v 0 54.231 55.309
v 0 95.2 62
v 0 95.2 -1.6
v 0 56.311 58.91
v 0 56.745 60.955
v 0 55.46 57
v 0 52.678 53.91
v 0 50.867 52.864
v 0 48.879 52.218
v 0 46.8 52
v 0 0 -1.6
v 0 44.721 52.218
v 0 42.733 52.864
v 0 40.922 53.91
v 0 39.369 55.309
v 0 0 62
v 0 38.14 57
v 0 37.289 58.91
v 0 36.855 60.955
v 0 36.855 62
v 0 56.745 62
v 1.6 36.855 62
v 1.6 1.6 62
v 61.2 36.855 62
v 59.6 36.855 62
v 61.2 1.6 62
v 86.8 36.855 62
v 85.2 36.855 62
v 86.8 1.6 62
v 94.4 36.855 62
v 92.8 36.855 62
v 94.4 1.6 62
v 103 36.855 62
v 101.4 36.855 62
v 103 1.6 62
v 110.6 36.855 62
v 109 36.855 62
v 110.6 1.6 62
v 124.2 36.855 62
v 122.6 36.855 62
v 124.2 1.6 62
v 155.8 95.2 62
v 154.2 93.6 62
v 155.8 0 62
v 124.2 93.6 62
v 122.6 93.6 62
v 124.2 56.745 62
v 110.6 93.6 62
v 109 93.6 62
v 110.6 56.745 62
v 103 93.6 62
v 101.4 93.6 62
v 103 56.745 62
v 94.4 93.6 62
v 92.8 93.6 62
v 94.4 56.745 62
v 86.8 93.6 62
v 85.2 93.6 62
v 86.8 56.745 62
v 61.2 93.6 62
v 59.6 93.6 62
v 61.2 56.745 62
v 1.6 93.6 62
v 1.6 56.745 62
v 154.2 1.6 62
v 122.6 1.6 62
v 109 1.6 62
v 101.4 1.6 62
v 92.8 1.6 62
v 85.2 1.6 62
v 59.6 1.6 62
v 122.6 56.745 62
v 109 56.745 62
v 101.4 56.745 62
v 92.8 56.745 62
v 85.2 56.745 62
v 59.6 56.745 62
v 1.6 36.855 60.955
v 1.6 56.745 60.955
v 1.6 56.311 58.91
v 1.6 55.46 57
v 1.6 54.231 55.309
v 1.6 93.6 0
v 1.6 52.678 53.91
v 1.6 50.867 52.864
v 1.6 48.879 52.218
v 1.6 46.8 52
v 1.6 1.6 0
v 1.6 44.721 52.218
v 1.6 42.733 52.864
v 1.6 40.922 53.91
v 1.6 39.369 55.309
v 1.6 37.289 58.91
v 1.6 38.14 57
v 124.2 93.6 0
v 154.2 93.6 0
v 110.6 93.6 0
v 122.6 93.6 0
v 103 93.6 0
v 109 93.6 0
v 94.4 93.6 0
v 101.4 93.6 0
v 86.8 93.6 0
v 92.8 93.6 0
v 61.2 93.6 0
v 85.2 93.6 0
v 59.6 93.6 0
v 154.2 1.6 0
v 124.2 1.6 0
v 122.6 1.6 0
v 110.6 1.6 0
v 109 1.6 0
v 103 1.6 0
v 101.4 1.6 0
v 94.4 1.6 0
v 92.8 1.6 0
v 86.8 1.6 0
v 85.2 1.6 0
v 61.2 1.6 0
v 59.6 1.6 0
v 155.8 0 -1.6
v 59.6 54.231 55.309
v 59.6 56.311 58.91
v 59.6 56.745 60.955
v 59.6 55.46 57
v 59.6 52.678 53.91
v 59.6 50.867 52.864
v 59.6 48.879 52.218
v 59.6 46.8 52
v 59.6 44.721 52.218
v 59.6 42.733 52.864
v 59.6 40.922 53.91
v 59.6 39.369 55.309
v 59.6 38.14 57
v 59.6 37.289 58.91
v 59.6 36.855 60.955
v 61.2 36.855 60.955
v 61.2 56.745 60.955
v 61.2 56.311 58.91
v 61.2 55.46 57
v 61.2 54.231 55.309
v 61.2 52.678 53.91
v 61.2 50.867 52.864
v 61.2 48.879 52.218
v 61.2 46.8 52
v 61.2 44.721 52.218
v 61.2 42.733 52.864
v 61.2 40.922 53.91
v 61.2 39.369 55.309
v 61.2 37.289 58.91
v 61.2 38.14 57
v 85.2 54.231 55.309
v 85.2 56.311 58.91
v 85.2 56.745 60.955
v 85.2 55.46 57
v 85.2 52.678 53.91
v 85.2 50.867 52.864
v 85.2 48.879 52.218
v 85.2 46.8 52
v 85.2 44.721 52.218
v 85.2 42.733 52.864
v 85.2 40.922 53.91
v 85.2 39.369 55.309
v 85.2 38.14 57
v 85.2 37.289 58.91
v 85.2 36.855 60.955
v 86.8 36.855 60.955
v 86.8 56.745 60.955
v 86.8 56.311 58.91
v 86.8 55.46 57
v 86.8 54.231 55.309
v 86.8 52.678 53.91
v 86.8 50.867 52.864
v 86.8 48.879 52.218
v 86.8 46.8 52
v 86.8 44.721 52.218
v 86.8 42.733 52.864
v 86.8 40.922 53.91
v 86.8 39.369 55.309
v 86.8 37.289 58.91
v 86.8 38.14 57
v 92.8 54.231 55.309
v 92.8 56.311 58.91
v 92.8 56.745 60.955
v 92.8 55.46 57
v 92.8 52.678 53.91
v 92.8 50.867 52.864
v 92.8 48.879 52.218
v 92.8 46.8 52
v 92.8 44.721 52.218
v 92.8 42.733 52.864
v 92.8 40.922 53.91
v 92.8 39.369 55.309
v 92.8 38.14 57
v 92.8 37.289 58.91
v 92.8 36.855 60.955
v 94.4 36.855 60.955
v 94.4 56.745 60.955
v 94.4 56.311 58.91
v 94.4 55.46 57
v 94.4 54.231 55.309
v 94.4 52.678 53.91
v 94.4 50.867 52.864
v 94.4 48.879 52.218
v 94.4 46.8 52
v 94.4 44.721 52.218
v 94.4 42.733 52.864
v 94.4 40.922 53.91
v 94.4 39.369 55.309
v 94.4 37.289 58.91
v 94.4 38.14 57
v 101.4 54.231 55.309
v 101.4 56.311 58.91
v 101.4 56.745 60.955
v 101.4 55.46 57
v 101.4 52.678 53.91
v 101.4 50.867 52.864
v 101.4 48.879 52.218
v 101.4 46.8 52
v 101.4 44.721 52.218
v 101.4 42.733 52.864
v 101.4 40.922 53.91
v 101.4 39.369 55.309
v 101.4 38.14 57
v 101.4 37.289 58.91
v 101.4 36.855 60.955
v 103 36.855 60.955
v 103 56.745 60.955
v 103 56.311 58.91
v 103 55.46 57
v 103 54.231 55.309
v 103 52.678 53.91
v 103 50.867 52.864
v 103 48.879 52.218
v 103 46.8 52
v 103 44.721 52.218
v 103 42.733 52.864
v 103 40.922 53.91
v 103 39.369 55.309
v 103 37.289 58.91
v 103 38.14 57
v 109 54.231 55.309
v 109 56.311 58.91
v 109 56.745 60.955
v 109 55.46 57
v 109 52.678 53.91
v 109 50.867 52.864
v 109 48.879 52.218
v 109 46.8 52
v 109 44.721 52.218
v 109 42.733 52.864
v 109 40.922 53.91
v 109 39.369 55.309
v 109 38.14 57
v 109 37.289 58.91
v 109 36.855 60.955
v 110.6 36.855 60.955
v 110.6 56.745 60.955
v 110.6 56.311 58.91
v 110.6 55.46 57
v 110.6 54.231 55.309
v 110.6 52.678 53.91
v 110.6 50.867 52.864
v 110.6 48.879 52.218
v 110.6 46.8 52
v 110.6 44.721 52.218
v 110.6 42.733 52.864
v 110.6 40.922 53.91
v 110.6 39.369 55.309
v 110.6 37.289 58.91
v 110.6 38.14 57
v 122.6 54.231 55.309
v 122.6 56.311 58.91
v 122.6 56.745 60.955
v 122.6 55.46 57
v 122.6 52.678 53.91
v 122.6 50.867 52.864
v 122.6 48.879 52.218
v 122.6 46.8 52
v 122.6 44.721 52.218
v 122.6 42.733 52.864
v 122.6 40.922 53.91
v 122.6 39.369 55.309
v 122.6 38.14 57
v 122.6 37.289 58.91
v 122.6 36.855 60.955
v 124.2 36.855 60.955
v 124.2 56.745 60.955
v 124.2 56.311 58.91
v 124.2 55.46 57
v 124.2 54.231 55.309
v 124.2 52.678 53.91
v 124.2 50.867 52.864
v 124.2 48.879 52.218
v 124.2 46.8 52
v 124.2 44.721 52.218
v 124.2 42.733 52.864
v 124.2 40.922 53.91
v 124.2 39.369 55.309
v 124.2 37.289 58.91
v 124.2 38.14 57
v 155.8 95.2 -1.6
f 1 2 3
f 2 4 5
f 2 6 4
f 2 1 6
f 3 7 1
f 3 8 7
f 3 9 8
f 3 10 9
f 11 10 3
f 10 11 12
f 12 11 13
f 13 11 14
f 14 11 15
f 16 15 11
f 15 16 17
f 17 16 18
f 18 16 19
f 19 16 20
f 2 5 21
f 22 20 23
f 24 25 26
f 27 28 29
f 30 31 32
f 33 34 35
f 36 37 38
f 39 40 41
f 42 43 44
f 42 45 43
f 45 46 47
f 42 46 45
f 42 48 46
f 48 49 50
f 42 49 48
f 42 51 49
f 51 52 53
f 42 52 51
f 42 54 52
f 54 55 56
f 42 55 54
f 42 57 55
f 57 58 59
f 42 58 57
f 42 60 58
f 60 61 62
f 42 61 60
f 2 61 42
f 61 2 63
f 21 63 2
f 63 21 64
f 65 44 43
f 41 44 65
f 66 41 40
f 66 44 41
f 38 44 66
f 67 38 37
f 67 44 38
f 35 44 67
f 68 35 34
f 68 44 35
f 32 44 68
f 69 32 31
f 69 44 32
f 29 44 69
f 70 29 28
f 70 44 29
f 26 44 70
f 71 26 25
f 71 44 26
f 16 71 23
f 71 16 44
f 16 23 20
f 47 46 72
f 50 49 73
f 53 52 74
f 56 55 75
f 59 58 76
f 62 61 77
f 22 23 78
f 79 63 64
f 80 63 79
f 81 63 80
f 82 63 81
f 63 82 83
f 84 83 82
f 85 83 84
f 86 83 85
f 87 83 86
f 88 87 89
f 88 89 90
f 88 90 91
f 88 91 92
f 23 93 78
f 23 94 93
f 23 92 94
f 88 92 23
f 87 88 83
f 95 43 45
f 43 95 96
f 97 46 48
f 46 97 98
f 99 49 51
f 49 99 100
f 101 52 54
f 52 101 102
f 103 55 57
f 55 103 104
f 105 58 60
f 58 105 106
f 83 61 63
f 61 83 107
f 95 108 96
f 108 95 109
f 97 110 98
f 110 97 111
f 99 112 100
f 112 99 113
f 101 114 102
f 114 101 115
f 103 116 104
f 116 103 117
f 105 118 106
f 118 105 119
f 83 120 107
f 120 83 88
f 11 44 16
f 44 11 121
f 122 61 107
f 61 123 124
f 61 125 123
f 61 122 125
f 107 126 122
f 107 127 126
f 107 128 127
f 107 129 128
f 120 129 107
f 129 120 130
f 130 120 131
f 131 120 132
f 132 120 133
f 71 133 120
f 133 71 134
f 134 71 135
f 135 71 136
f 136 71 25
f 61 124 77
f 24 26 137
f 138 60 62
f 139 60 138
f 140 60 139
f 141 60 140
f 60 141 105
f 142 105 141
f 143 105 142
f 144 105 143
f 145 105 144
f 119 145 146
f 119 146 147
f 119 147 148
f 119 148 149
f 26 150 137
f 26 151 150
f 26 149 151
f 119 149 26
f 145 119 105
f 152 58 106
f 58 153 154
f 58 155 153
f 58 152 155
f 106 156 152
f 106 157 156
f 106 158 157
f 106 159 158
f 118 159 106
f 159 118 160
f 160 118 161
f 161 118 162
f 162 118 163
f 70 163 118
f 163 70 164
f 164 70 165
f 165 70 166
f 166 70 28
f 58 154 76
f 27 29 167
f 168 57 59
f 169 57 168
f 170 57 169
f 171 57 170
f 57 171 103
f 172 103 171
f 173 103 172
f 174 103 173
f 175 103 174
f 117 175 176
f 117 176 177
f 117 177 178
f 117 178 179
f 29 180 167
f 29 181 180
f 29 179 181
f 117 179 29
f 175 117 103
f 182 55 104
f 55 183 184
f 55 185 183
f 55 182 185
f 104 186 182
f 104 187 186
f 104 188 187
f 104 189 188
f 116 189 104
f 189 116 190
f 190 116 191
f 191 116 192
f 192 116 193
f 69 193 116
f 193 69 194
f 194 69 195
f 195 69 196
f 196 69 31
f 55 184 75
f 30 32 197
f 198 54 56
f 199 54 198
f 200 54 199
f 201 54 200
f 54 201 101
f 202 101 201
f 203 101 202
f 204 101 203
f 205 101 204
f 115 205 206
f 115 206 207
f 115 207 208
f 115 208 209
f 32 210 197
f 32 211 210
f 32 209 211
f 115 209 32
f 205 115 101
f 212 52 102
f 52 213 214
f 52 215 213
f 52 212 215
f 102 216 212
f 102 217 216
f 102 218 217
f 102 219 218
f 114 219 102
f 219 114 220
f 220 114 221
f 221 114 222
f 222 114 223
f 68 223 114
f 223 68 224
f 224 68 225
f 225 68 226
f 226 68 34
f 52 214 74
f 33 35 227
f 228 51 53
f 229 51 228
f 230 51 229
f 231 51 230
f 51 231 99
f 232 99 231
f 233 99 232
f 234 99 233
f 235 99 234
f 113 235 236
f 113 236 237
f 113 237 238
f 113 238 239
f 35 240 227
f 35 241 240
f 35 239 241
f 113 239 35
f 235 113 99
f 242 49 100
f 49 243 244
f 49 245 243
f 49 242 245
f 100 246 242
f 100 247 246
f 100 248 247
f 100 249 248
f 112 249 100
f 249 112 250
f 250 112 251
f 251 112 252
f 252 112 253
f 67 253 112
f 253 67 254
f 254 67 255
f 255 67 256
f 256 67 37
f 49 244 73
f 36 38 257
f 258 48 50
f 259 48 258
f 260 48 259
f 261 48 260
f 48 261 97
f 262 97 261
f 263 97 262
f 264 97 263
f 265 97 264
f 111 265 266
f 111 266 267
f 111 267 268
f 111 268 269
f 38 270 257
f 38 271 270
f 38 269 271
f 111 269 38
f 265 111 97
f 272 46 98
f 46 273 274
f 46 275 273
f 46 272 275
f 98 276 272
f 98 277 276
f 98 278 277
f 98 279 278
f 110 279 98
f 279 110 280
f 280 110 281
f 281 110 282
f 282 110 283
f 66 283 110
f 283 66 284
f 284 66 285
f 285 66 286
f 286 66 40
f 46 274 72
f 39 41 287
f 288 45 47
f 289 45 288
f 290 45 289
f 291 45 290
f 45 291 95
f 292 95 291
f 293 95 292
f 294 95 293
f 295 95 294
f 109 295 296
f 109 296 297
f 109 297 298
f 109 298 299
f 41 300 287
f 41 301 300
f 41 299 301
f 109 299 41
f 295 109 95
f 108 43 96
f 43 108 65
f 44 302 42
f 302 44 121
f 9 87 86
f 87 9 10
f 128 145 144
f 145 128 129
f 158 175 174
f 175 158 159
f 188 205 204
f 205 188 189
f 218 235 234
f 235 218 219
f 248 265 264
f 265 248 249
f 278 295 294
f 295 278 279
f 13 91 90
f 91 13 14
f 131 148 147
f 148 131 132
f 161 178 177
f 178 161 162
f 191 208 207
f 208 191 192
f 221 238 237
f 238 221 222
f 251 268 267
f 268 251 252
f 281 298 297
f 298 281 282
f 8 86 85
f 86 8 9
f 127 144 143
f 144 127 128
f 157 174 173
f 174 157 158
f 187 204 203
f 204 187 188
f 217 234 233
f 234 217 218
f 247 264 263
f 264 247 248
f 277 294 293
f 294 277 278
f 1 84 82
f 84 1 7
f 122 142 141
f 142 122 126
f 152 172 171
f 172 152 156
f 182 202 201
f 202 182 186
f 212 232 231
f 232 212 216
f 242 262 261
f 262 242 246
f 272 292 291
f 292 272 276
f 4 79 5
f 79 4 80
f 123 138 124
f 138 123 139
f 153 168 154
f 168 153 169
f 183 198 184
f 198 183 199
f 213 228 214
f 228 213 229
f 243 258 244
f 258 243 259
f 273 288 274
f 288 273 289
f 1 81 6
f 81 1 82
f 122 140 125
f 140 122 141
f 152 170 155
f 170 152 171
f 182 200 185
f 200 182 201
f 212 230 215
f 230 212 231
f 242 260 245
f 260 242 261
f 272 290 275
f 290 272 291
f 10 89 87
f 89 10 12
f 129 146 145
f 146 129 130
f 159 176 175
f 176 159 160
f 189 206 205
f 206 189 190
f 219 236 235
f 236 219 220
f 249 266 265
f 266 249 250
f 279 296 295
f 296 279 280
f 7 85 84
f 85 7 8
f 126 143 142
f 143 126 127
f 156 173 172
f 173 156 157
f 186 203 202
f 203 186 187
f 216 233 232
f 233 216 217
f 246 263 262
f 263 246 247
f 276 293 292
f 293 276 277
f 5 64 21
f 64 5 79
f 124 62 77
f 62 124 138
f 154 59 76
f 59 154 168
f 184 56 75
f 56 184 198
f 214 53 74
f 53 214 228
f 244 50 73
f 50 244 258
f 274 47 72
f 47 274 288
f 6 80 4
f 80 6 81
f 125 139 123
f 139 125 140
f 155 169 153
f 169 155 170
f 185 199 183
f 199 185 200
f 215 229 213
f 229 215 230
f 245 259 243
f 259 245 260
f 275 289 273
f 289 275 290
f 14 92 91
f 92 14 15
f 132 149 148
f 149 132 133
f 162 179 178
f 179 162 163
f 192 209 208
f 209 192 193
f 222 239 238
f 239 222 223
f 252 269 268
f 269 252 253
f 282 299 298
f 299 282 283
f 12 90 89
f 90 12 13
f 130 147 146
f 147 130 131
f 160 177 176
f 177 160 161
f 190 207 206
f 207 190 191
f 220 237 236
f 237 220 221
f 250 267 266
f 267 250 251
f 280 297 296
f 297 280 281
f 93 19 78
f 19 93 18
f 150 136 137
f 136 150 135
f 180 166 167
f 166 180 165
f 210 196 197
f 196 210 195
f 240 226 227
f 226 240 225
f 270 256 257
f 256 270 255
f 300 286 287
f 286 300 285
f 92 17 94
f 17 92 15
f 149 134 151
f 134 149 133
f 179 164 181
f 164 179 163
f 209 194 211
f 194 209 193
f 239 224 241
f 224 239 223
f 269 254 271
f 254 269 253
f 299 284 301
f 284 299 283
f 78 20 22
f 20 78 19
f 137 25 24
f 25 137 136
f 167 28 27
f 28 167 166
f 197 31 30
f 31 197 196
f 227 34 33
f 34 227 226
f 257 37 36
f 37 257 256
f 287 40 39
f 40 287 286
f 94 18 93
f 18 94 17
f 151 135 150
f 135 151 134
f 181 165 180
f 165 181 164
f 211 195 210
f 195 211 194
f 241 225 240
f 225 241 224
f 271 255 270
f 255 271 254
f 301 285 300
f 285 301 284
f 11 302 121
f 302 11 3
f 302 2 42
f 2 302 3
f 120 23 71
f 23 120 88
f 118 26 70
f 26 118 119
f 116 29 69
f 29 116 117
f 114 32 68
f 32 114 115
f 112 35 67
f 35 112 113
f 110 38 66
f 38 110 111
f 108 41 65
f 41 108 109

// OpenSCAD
w_width=1.6;
hloubka=92;
vyska=62;

v1=58;
v2=v1+24;
v3=v2+6;
v4=v3+7;
v5=v4+6;
v6=v5+12;
v7=v6+30;
delka=v7+7*w_width;


module spodek(args) {
  translate([0, 0, -w_width]) cube(size=[delka+w_width, hloubka+w_width*2, w_width], center=false);
}

module bok_dlouhy(y) {
  translate([0, y, 0]) {
    cube(size=[delka+w_width, w_width, vyska], center=false);
  }
}

module bok_kratky(x) {
  translate([x, 0, 0]) {
    cube(size=[w_width, hloubka+w_width, vyska], center=false);
  }
}

module kratke_boky() {
  bok_kratky(0);
  bok_kratky(v1+1*w_width);
  bok_kratky(v2+2*w_width);
  bok_kratky(v3+3*w_width);
  bok_kratky(v4+4*w_width);
  bok_kratky(v5+5*w_width);
  bok_kratky(v6+6*w_width);
  bok_kratky(v7+7*w_width);
}

module celek() {
  spodek();
  bok_dlouhy();
  bok_dlouhy(hloubka+w_width);

  difference() {
    union() {
      kratke_boky();
    }
    translate([-w_width,w_width/2+hloubka/2,vyska]) rotate([0,90,0]) cylinder(r=10, h=delka, center=false);
  }
}
celek();
